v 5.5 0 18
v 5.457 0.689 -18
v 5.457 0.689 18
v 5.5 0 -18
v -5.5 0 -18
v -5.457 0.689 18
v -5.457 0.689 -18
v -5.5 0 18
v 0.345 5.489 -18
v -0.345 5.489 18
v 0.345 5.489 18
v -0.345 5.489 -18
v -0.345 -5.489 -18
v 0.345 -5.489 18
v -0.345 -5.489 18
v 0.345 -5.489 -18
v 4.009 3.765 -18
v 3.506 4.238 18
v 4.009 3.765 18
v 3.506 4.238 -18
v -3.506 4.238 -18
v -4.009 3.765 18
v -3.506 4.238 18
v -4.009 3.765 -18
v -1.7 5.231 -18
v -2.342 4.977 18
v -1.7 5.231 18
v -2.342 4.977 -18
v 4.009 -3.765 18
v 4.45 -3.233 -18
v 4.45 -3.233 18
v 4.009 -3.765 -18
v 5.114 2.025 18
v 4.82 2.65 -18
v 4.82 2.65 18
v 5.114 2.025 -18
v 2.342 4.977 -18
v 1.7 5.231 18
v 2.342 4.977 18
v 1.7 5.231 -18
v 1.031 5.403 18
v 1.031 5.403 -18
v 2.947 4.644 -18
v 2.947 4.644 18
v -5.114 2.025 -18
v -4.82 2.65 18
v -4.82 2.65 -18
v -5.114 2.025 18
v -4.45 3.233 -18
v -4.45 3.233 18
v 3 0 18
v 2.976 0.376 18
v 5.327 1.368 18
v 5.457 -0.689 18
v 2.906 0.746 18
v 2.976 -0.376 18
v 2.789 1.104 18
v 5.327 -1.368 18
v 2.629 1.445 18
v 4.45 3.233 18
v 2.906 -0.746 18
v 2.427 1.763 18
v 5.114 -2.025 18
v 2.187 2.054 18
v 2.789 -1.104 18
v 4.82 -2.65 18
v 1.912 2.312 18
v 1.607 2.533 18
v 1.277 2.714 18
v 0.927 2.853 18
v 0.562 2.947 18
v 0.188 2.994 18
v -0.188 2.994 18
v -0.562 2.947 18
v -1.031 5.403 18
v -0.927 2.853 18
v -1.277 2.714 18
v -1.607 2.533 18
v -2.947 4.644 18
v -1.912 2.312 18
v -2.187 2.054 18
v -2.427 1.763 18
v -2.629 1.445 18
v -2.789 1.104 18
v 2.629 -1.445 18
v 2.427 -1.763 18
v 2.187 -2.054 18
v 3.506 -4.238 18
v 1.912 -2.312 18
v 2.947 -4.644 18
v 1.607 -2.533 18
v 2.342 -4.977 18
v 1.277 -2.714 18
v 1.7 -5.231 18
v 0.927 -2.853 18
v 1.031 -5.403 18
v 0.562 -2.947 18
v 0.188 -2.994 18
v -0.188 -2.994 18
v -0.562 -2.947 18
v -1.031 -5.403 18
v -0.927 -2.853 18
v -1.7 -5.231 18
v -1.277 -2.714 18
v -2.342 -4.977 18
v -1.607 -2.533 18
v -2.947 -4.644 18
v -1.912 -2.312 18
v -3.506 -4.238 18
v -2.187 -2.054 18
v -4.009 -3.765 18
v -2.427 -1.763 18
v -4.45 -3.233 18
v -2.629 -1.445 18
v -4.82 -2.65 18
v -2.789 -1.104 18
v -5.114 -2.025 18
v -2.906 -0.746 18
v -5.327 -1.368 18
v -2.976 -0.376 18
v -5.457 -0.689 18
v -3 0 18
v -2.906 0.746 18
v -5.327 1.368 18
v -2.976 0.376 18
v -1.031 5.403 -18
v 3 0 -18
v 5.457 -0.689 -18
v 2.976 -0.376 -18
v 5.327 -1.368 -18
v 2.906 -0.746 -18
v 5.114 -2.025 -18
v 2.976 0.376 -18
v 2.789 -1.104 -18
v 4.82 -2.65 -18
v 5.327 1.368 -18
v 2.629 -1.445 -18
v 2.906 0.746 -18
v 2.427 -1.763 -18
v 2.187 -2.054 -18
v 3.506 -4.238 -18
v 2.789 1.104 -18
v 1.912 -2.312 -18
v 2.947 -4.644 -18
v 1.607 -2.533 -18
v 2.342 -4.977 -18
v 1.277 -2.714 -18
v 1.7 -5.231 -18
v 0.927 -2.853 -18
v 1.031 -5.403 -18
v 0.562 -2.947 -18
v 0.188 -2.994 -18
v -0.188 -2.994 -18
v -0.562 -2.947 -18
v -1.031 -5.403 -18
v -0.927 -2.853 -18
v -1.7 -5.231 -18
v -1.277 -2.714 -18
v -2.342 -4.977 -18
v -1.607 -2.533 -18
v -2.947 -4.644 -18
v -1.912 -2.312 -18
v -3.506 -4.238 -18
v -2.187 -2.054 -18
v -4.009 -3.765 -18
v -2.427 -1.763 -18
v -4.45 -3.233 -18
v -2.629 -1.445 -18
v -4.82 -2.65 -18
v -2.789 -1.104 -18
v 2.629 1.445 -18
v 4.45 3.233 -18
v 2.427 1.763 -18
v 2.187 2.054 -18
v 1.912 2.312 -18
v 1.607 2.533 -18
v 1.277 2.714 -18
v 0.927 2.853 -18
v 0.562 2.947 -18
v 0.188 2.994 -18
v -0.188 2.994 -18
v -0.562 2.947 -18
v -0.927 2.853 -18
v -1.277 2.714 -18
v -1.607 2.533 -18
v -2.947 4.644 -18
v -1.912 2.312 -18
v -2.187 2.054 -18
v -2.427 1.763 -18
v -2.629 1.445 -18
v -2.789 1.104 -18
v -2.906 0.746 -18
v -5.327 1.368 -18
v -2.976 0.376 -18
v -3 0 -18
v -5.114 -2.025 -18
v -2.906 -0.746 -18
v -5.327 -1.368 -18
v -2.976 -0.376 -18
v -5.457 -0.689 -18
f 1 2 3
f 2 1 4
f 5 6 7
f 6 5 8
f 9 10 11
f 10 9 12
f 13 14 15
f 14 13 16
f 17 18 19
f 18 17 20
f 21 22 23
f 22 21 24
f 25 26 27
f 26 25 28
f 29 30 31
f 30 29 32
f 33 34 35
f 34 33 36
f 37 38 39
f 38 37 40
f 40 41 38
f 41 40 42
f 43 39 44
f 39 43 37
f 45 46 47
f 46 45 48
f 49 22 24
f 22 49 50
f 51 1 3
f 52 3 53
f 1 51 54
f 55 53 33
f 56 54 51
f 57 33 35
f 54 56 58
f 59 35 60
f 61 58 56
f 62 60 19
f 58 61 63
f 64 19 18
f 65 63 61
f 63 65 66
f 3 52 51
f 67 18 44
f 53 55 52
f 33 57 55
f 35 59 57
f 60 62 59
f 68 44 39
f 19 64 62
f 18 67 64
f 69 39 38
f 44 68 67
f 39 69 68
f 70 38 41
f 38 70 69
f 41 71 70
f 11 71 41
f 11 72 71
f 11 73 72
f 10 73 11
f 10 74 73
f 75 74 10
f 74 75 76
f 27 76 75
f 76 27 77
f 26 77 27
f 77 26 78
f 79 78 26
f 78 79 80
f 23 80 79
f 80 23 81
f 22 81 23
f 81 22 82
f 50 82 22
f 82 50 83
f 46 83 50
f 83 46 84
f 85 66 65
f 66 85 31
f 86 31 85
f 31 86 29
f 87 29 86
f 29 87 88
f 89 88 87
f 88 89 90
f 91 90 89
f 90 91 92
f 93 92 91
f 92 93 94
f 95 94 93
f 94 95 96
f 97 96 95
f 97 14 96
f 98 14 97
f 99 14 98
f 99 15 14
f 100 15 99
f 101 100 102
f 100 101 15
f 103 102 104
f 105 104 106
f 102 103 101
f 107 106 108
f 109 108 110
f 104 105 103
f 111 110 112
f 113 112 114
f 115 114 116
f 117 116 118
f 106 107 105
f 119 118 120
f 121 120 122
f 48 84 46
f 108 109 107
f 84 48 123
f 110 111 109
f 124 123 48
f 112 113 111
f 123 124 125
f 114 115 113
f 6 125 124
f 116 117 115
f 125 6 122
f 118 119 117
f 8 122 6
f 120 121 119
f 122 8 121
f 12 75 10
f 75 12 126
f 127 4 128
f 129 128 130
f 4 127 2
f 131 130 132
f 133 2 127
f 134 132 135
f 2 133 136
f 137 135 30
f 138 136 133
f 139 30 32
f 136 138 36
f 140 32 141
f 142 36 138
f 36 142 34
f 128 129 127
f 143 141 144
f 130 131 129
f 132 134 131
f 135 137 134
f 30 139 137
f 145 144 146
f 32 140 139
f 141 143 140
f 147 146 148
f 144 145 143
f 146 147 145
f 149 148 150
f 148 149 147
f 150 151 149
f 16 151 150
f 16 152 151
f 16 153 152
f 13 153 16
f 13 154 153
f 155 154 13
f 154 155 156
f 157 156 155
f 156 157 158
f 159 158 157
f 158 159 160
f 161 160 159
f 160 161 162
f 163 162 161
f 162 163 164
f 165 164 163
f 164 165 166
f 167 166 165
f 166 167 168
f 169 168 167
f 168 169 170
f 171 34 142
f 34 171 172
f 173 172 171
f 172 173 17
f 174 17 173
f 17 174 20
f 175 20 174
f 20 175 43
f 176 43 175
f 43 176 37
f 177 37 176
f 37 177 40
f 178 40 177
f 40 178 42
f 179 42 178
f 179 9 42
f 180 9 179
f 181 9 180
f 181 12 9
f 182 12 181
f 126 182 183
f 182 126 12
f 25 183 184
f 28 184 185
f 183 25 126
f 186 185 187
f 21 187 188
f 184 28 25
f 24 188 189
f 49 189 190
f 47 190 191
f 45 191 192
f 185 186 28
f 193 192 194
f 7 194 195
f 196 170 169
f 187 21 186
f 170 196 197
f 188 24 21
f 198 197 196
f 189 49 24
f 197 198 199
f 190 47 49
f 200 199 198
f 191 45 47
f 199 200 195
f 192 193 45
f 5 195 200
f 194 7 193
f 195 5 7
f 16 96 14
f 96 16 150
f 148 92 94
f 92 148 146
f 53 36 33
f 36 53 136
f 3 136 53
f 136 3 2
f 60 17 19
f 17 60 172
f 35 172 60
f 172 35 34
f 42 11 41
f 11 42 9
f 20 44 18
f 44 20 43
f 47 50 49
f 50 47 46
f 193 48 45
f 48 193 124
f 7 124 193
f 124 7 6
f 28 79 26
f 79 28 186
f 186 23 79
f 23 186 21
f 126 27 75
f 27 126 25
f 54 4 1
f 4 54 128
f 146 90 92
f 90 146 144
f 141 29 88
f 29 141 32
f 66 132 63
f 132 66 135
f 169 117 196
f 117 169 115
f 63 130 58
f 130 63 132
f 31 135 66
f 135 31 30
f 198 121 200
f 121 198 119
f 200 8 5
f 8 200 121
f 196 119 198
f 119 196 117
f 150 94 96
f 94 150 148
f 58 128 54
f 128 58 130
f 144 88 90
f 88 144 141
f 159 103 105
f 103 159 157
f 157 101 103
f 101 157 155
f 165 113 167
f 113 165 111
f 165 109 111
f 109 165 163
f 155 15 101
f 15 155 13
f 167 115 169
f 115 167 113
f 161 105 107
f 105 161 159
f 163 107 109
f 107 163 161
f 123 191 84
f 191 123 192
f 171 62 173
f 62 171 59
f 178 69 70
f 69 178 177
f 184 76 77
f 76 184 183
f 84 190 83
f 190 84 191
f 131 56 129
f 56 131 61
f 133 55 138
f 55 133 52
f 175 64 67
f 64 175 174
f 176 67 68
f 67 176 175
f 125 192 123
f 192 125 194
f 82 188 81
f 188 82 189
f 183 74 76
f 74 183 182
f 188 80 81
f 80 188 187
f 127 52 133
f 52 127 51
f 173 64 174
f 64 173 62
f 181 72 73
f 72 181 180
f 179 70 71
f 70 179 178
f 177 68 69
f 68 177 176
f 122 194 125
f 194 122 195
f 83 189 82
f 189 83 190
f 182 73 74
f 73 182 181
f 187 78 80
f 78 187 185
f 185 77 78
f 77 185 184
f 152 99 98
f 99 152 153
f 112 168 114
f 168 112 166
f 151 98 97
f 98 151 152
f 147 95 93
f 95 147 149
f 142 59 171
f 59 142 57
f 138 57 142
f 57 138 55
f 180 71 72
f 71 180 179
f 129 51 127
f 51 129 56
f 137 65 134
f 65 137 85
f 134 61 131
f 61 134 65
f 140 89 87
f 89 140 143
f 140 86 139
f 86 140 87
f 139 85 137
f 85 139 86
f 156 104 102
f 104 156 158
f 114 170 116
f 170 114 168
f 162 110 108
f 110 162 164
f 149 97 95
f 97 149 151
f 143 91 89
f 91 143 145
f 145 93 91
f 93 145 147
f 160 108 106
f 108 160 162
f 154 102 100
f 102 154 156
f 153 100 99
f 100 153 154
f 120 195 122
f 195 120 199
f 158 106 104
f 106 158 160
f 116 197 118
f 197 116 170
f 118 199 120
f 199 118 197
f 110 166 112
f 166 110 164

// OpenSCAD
$fn = 50;


difference() {
	union() {
		translate(v = [0, 0, -18.0000000000]) {
			cylinder(h = 36, r = 5.5000000000);
		}
	}
	union() {
		translate(v = [0, 0, -100.0000000000]) {
			cylinder(h = 200, r = 3.0000000000);
		}
	}
}
